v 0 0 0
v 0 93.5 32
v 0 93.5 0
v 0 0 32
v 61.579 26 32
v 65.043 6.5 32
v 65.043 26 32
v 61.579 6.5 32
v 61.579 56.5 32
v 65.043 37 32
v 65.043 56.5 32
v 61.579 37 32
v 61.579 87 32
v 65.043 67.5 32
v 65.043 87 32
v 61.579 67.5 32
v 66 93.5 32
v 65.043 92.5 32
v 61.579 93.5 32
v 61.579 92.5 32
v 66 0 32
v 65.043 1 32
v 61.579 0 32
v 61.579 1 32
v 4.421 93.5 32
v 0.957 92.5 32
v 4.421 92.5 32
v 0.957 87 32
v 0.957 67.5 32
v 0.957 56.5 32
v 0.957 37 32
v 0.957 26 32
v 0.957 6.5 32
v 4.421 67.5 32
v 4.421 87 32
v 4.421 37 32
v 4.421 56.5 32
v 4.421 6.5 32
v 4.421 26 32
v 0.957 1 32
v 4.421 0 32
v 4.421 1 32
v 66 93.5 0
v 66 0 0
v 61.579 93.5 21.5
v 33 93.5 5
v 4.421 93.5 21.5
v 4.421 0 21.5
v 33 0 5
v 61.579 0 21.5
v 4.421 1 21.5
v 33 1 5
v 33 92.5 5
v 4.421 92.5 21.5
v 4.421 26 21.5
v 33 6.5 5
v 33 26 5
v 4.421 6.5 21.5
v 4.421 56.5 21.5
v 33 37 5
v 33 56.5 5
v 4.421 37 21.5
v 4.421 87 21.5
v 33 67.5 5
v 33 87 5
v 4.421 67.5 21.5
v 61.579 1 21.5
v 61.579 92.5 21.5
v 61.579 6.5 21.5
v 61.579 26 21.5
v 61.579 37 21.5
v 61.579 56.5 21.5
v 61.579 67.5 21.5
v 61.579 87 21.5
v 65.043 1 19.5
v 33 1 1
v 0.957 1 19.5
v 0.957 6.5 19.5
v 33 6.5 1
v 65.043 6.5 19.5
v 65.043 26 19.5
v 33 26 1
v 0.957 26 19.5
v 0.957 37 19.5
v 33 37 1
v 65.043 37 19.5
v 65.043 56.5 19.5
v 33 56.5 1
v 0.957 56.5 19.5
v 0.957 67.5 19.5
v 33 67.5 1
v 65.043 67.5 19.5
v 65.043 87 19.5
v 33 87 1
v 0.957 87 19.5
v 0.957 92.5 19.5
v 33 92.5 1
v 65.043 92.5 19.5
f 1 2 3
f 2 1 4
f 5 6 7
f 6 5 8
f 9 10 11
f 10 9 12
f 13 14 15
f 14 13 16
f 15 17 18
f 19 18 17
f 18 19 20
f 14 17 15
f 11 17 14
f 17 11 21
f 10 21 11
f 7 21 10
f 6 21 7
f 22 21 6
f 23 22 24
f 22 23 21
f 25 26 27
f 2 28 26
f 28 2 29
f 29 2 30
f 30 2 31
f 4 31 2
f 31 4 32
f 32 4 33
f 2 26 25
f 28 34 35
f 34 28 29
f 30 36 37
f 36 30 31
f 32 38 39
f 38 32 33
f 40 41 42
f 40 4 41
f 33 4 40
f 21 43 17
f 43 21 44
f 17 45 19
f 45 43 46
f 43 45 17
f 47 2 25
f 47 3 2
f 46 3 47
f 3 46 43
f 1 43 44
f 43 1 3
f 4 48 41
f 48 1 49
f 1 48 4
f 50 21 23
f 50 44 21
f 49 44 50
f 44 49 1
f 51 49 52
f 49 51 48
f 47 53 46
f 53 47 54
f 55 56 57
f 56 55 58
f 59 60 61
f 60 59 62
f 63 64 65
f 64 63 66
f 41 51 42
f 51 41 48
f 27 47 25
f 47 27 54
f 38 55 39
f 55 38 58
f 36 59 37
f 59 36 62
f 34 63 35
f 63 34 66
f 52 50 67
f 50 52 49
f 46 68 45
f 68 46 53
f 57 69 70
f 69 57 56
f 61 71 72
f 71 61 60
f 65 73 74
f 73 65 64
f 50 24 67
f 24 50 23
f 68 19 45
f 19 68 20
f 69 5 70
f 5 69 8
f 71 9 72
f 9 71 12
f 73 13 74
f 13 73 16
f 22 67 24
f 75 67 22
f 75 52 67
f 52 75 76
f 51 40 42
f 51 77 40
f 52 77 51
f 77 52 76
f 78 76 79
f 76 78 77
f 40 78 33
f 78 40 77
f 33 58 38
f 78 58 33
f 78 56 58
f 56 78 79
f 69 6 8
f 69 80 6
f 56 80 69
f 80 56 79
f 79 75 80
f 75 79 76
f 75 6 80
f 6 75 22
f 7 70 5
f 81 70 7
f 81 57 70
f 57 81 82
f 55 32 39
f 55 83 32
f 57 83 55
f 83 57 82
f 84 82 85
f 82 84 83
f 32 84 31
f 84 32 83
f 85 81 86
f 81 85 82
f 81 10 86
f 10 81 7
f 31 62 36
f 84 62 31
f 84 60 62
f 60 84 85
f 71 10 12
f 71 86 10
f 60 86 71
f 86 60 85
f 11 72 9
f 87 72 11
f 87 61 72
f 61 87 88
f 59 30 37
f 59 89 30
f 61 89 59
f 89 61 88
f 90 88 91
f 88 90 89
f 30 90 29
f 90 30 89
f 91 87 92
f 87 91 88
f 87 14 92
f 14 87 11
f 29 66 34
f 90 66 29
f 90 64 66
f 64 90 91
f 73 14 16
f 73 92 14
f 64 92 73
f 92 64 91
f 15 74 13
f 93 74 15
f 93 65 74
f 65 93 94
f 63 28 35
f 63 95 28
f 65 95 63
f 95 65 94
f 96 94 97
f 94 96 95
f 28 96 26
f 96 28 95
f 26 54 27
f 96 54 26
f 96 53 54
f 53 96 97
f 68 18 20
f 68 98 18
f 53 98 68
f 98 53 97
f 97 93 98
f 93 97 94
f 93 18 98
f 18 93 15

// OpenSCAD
$fn=200;
THICK = 1;

TILE_L = 25;
TILE_COUNT = 6;

BOX_W = 64;
BOX_L = 91.5;
BOX_H = 32;

difference() {
    cube(size = [
        BOX_W + (THICK * 2),
        BOX_L + (THICK * 2), 
        BOX_H]);

    translate([33, -5, 38])
        rotate([0, 90, 90]) 
            cylinder(h = 200, r = 33, $fn=6);

    tile_slot(1);
    tile_slot(1 + TILE_L);

    tile_slot(6.5 + TILE_L);
    tile_slot(6.5 + (TILE_L * 2));

    tile_slot(12 + (TILE_L * 2));
    tile_slot(12 + (TILE_L * 3));
}

module tile_slot(y) {
    translate([33, y, 38])
        rotate([0, 90, 90]) 
            cylinder(h = 5.5, r = 37, $fn=6);
}
